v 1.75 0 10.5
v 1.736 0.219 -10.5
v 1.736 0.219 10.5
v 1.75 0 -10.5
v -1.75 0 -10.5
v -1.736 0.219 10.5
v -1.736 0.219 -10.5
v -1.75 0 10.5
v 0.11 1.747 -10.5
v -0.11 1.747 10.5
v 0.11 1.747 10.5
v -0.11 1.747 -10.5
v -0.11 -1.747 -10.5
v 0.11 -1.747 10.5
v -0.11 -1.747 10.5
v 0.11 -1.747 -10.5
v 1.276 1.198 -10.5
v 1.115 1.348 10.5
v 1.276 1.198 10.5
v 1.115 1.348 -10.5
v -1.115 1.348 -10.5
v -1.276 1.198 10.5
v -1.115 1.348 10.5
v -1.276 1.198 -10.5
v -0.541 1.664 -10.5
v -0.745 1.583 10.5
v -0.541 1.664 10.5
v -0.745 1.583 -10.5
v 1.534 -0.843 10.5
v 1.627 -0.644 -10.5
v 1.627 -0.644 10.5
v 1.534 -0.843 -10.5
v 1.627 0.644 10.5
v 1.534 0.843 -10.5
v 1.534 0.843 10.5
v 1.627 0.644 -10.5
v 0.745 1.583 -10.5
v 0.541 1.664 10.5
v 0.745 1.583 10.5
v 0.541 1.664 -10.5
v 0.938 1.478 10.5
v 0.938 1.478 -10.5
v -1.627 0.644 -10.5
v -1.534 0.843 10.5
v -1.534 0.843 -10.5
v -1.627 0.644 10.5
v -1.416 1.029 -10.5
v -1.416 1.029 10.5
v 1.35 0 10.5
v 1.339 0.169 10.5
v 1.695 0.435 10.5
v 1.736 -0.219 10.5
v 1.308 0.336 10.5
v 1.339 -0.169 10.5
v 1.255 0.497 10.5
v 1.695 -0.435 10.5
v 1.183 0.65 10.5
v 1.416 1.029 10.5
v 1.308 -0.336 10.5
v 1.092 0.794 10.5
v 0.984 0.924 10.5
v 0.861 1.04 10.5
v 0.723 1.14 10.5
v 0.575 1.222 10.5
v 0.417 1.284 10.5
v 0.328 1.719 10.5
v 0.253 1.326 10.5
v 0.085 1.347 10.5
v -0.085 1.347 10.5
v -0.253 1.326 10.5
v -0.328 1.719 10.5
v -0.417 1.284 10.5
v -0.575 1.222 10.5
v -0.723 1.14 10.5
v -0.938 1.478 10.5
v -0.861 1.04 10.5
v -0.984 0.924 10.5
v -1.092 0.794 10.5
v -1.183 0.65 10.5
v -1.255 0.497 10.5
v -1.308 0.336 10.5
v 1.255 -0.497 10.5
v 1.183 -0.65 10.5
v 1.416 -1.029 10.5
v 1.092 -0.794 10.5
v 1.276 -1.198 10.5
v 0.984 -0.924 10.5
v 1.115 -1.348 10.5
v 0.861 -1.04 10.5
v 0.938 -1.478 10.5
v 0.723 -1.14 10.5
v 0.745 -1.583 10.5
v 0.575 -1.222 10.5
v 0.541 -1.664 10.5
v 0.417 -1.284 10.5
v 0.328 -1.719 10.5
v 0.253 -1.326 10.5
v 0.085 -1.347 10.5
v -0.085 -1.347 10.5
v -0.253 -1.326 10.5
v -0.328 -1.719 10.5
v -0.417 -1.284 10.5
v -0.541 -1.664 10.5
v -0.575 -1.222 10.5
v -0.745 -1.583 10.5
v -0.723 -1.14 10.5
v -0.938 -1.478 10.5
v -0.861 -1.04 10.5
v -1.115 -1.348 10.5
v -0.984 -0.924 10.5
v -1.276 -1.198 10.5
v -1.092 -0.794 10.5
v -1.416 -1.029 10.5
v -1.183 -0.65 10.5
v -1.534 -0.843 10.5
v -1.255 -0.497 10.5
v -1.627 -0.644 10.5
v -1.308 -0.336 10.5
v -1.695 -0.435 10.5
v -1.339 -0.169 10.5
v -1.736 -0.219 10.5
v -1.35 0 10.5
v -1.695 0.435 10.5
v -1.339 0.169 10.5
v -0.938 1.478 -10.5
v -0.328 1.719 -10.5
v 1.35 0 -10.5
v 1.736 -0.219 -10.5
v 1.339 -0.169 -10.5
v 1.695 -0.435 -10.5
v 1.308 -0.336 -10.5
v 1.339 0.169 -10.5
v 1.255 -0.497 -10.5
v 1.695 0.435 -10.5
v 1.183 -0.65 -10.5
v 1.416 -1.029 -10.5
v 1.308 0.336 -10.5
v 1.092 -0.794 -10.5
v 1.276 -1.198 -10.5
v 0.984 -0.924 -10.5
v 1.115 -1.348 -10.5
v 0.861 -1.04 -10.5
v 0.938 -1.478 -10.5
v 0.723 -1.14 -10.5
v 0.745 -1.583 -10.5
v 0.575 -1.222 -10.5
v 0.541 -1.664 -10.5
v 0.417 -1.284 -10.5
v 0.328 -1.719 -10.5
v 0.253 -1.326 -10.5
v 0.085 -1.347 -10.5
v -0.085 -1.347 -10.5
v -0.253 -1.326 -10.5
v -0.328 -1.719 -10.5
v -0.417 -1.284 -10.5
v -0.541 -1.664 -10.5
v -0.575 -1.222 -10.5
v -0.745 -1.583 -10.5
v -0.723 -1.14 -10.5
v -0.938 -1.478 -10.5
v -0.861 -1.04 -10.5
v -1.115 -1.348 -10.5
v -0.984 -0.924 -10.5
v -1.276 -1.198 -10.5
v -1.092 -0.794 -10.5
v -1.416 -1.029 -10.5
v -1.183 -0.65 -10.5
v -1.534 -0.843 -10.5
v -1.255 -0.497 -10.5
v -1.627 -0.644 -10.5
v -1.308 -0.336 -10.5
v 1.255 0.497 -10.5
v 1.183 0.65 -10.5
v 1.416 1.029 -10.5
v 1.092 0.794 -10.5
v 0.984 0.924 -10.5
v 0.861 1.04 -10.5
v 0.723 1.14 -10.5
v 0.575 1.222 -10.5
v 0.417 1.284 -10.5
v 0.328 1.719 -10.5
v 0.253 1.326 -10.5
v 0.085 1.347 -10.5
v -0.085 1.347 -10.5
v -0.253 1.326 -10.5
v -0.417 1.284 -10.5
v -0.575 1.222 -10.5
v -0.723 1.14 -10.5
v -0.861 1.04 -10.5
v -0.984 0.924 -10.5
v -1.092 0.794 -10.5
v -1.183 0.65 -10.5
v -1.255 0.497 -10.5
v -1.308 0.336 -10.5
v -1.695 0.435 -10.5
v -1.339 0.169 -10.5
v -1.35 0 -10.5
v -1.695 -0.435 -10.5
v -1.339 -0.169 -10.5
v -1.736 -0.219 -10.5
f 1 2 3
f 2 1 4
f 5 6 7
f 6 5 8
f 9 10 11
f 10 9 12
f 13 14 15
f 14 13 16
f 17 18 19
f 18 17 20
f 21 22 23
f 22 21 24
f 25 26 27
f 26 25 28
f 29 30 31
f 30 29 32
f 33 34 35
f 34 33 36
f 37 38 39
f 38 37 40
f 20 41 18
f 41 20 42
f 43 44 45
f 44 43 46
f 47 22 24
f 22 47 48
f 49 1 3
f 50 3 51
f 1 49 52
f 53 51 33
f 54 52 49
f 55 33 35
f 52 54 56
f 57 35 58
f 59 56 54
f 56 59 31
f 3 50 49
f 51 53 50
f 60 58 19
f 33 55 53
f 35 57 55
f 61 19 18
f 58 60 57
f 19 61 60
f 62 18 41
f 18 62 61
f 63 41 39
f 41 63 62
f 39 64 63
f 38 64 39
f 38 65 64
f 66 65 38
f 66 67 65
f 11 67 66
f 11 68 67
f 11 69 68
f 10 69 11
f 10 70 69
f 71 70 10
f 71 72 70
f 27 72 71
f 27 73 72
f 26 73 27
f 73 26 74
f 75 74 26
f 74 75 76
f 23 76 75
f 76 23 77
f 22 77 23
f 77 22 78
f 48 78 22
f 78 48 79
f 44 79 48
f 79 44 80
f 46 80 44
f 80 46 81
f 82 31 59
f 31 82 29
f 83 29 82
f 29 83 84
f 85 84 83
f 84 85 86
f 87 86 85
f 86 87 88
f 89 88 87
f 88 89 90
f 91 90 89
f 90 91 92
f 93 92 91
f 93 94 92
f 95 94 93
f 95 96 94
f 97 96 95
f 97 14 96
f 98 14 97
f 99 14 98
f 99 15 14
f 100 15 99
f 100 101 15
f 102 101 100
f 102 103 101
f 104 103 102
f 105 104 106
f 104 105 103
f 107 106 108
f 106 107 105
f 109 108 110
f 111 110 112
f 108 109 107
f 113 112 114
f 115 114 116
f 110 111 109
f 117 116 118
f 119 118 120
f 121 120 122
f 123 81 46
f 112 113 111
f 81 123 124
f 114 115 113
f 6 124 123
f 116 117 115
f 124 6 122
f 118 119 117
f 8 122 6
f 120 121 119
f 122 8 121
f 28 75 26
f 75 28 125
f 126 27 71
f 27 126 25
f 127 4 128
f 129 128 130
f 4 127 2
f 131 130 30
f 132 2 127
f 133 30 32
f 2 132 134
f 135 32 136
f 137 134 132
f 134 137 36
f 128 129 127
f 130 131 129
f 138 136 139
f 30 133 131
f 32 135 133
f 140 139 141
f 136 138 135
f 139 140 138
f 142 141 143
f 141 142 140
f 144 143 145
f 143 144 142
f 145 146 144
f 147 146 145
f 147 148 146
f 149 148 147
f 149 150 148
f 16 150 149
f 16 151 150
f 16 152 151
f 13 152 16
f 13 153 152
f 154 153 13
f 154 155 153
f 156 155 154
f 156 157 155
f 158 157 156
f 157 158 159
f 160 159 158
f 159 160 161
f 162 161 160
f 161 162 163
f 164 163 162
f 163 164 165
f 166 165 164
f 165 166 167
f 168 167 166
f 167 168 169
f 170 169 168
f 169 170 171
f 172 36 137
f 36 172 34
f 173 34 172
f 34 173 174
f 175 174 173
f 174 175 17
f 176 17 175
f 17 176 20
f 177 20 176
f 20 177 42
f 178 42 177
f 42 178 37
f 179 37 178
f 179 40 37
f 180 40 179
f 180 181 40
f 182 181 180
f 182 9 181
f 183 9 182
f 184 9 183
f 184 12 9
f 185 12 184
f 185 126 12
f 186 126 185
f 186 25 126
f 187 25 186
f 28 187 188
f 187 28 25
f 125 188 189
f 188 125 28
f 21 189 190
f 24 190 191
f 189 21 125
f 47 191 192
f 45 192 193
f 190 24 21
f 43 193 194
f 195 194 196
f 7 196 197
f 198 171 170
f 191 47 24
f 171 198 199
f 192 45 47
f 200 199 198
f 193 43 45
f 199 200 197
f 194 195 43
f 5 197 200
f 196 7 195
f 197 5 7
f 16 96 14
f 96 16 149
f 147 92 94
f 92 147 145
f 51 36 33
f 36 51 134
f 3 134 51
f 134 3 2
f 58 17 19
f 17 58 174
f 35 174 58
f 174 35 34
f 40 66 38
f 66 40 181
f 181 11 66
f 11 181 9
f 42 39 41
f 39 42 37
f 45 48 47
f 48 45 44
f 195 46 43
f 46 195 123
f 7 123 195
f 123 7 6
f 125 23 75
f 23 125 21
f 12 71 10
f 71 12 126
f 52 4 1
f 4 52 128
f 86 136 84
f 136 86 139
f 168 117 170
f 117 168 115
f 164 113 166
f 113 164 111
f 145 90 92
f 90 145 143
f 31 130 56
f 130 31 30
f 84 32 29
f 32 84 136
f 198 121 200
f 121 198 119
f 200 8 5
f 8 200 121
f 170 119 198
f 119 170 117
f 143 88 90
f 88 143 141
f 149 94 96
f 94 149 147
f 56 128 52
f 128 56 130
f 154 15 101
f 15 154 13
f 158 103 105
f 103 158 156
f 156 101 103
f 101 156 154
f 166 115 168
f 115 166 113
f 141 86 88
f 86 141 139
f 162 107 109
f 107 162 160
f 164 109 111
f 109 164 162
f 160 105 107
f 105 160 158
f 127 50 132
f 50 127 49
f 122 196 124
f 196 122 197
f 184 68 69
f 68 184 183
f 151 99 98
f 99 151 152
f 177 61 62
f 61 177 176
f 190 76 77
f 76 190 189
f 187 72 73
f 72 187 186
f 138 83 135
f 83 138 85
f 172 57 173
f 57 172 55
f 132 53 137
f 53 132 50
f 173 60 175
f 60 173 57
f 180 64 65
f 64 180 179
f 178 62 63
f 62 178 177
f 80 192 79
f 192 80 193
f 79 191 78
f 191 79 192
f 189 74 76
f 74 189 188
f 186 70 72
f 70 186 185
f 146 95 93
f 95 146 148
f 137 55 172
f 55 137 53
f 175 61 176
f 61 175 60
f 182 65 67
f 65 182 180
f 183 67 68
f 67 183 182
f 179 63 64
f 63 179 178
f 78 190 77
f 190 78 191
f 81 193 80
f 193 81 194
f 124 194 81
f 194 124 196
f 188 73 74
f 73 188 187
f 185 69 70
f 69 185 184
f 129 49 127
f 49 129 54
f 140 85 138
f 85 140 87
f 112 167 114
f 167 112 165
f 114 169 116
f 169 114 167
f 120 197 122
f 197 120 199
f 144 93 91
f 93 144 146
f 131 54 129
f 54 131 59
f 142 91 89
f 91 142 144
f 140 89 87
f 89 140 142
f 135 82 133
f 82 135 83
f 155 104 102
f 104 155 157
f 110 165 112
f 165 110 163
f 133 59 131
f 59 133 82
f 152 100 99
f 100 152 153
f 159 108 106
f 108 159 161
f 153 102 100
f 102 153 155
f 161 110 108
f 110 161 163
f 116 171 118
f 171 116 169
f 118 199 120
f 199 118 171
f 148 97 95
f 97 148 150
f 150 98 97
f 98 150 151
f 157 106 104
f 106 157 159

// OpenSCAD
$fn = 50;


difference() {
	union() {
		translate(v = [0, 0, -10.5000000000]) {
			cylinder(h = 21, r = 1.7500000000);
		}
	}
	union() {
		translate(v = [0, 0, -100.0000000000]) {
			cylinder(h = 200, r = 1.3500000000);
		}
	}
}
